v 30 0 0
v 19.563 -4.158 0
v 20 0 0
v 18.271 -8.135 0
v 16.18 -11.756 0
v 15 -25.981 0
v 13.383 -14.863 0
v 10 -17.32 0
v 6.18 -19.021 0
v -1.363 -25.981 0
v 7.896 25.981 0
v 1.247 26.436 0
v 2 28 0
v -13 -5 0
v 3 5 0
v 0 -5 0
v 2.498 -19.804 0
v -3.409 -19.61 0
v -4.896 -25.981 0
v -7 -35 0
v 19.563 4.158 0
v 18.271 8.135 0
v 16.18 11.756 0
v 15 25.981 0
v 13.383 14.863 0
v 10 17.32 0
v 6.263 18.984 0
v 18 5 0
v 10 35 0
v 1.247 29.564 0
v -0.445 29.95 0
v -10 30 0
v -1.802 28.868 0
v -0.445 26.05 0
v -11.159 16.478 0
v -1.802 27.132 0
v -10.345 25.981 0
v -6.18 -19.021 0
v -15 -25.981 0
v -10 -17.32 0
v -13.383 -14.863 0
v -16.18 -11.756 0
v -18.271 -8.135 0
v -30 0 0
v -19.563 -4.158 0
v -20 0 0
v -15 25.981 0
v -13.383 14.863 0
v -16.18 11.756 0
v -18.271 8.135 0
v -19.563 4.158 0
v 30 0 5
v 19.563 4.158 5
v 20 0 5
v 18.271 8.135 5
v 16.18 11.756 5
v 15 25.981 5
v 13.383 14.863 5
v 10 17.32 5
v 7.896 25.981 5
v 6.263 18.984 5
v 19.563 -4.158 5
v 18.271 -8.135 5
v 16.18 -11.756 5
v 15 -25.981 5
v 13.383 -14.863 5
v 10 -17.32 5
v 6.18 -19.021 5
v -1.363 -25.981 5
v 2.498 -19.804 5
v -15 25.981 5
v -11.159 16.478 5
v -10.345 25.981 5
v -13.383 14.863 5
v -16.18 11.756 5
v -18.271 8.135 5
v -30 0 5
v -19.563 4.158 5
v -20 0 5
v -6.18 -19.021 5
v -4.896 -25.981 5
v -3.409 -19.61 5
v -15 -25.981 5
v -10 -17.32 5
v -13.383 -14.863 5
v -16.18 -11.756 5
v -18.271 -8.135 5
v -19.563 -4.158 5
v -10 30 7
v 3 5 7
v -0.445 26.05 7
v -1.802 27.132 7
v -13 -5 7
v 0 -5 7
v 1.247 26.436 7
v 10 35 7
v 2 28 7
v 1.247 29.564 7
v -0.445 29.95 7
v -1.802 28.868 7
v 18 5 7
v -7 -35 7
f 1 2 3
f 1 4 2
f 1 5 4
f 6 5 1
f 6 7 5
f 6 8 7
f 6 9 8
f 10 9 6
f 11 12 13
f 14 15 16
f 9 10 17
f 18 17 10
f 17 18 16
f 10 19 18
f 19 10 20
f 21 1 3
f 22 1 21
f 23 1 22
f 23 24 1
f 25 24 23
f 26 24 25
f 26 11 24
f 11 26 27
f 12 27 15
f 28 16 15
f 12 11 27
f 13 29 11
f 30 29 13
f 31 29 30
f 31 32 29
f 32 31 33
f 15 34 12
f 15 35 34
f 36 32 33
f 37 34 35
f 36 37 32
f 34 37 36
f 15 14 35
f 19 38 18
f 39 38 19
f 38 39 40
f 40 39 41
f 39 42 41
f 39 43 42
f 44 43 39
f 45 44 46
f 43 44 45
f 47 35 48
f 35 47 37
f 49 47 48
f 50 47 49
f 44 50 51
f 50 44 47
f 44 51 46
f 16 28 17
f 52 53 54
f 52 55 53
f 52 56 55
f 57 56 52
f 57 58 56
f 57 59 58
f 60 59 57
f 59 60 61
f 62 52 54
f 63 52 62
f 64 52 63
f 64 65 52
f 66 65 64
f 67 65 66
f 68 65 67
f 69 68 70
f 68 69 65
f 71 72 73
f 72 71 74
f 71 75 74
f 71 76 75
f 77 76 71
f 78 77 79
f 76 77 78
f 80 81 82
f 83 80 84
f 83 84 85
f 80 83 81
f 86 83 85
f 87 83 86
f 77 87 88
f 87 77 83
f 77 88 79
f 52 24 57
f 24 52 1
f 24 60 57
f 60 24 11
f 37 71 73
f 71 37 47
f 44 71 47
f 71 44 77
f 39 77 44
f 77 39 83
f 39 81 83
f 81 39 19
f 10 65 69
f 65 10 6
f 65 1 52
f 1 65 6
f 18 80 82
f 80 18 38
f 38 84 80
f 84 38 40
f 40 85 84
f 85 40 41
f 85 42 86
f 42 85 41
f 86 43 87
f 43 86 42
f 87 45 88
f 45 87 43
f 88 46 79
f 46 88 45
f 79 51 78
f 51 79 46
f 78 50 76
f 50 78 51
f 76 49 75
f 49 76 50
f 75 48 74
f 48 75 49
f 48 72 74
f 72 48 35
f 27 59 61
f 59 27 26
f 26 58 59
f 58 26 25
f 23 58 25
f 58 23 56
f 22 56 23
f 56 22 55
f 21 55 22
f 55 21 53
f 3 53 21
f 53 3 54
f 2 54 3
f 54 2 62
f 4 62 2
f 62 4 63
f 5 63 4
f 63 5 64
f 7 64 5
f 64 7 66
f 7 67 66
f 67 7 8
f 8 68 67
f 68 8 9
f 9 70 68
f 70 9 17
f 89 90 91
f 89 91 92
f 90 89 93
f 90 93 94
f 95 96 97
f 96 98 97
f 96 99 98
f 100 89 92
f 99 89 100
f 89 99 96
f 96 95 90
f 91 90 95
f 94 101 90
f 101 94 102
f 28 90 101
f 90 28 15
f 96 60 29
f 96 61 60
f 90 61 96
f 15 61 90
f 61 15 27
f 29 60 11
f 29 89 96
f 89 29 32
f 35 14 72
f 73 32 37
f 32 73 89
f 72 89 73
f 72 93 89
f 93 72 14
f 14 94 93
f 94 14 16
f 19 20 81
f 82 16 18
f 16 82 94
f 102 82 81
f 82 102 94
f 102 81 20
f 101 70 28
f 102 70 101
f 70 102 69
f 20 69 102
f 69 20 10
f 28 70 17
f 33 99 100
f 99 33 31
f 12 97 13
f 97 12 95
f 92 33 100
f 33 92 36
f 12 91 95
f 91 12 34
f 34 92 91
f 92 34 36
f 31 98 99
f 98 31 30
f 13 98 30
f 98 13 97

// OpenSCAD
difference(){
union(){
        r = 30;
    linear_extrude(5){
     difference(){
         angles=[ for (i = [0:5]) i*(360/6) ];
         coords=[ for (th=angles) [r*cos(th), r*sin(th)] ];
         polygon(coords);
         
         circle(20);
    }
}
    translate([0,0,0])
    linear_extrude(7){
    polygon([
        [-10, 30],
        [10, 35],
        [3, 5],
        [18, 5],
        [-7, -35],
        [0, -5],
        [-13, -5]
    ]);}
}
translate([0,28,-3])
linear_extrude(16)
circle(2);
}
